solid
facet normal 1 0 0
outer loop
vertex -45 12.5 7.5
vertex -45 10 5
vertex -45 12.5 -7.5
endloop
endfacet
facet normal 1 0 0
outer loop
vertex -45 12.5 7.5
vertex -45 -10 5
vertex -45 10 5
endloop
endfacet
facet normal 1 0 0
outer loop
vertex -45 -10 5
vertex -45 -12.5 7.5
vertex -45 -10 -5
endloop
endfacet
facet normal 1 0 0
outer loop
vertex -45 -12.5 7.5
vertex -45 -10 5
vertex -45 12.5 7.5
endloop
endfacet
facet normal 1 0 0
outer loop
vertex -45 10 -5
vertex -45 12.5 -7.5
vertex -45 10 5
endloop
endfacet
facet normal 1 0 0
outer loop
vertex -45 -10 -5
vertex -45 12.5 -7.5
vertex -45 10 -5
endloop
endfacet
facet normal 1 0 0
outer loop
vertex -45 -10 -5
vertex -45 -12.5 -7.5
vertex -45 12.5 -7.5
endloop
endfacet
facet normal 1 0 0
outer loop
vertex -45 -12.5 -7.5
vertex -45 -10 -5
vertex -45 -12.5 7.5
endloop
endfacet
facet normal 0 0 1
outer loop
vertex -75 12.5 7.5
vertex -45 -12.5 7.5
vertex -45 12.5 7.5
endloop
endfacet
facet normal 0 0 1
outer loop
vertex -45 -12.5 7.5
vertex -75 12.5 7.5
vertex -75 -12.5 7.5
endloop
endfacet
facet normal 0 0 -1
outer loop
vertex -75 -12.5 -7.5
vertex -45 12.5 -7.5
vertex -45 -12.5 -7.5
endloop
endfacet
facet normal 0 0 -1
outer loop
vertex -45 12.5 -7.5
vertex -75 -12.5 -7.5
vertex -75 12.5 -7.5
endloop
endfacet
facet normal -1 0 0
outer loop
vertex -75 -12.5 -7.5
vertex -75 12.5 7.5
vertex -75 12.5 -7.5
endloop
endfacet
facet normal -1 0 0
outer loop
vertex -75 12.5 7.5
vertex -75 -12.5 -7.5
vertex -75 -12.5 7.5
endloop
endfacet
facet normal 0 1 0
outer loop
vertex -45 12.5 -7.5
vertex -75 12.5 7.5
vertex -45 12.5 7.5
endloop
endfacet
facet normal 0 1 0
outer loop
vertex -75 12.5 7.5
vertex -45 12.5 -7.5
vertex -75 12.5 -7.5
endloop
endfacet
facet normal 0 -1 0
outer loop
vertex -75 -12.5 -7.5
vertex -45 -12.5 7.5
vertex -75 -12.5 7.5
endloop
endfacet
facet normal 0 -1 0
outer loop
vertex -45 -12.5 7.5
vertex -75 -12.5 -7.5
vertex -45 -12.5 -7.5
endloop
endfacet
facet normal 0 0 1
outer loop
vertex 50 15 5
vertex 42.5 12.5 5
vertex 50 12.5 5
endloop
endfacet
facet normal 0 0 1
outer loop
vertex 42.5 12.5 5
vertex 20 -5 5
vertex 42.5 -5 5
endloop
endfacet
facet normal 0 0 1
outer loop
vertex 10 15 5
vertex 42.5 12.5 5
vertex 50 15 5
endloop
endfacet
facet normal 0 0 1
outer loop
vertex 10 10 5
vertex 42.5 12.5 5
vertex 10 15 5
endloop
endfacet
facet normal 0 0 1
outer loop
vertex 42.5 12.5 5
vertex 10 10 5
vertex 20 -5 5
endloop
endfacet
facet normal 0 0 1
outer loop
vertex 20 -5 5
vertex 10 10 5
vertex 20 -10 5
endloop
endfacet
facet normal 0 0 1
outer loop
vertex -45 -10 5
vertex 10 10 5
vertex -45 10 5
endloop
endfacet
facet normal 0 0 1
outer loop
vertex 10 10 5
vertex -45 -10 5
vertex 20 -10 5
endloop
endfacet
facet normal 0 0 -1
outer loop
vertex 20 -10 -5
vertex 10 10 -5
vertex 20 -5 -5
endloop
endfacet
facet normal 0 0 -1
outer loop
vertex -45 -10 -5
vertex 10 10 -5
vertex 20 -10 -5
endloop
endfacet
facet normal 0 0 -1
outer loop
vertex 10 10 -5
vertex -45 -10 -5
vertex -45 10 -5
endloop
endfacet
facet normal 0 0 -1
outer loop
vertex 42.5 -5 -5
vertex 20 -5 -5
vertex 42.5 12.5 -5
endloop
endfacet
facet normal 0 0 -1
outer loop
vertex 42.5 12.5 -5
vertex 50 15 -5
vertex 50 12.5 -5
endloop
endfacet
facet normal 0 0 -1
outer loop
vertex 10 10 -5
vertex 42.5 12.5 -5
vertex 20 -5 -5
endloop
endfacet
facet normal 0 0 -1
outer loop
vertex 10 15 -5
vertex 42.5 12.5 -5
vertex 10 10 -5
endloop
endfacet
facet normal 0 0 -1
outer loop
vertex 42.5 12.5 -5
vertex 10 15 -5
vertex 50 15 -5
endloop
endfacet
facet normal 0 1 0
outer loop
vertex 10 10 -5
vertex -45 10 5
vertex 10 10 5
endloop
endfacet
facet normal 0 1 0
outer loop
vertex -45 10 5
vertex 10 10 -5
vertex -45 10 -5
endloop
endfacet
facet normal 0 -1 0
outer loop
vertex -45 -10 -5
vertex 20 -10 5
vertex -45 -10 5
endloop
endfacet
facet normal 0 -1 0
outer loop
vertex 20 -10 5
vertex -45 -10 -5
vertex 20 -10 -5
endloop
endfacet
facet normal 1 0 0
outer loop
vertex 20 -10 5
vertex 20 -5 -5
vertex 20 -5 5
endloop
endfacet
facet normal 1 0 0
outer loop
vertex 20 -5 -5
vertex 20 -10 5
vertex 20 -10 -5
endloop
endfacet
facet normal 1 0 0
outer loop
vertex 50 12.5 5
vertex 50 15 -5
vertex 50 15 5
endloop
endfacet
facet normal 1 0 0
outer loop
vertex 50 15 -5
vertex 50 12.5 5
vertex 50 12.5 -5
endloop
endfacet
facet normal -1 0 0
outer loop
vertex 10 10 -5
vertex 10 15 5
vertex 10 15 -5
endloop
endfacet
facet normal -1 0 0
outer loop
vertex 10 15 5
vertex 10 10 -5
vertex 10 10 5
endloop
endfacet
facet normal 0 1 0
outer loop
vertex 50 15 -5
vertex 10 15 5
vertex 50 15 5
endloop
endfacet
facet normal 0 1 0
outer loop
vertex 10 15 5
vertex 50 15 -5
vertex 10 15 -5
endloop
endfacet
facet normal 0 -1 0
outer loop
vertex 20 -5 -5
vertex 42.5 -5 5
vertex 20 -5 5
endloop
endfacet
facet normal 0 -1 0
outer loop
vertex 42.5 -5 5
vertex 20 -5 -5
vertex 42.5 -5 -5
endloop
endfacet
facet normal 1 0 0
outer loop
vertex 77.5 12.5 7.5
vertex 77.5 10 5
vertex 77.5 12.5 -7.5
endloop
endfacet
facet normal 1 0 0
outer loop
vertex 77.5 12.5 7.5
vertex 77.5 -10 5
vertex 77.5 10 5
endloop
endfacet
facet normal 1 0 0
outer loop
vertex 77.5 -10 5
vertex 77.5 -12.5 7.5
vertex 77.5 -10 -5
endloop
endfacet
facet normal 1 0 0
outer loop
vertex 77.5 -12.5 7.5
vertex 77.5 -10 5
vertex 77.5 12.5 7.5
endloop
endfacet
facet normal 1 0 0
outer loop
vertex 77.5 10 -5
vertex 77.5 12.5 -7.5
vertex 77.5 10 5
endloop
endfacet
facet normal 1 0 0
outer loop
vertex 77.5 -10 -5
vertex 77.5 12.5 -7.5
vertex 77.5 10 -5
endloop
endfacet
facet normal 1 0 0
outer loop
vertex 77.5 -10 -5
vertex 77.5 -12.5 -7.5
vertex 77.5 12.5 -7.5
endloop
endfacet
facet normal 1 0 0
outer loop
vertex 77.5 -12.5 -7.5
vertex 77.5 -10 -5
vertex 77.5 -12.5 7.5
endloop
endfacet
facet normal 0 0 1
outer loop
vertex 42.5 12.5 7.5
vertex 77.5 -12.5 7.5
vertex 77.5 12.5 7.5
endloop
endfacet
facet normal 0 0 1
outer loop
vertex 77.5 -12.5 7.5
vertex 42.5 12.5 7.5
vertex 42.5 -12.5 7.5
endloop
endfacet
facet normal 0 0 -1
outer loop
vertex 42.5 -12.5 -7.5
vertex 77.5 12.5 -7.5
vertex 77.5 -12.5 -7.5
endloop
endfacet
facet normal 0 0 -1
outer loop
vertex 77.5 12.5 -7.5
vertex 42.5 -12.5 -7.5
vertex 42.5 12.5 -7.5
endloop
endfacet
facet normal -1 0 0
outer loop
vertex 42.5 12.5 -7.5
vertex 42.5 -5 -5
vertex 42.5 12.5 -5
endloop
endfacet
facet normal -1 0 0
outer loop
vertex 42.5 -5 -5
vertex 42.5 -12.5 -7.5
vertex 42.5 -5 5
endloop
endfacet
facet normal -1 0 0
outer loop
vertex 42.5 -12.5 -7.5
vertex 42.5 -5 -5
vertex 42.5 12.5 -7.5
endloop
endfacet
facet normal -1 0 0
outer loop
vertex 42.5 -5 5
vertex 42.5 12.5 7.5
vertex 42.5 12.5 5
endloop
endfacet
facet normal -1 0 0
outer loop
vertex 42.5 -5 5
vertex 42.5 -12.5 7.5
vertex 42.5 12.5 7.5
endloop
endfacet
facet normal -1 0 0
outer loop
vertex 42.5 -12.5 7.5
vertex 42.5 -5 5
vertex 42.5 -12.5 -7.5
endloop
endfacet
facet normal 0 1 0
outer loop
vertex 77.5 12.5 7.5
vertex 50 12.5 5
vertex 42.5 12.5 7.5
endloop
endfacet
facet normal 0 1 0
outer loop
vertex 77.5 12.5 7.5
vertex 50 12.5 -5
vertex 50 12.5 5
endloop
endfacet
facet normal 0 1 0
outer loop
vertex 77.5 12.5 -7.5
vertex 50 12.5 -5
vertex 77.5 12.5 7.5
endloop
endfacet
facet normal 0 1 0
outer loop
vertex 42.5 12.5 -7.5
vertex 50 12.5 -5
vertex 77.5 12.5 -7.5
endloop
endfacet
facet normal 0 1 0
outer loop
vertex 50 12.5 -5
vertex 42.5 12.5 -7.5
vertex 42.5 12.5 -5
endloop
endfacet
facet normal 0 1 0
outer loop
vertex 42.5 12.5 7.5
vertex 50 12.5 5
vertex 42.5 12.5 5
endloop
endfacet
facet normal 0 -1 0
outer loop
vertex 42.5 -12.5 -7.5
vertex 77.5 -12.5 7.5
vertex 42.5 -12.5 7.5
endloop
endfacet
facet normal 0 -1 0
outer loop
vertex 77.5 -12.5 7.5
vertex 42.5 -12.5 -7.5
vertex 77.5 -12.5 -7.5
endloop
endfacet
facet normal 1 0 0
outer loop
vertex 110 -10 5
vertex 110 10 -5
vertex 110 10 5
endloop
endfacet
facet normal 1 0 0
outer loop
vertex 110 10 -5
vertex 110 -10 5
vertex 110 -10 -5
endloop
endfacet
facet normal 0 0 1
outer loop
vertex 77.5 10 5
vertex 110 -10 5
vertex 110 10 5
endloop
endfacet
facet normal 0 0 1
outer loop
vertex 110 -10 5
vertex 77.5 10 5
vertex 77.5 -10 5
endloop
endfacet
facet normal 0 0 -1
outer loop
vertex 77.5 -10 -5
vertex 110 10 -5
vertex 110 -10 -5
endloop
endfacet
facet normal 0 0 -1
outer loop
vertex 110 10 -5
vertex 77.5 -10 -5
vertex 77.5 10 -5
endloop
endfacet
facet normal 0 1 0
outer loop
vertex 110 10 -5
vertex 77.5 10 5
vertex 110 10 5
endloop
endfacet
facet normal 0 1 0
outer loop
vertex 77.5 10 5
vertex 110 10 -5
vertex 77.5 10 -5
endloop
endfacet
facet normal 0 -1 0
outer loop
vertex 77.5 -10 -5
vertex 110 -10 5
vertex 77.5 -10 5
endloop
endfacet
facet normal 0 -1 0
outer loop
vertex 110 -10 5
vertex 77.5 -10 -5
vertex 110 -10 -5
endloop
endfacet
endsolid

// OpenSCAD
// Define the dimensions of the rectangular blocks
block_length_1 = 30;  // Adjusted length for Block 1
block_width_1 = 25;   // Adjusted width for Block 1
block_height_1 = 15;  // Adjusted height for Block 1

block_length_2 = 40;  // Length for Block 2 remains the same
block_width_2 = 20;   // Width for Block 2 remains the same
block_height_2 = 10;  // Height for Block 2 remains the same

block_length_3 = 40;  // Length for Block 3 remains the same
block_width_3 = 20;   // Width for Block 3 remains the same
block_height_3 = 10;  // Height for Block 3 remains the same

block_length_4 = 40;  // Length for Block 4 remains the same
block_width_4 = 20;   // Width for Block 4 remains the same
block_height_4 = 10;  // Height for Block 4 remains the same

block_length_5 = 35;  // Adjusted length for Block 5
block_width_5 = 25;   // Adjusted width for Block 5
block_height_5 = 15;  // Adjusted height for Block 5

block_length_6 = 40;  // Length for Block 6 remains the same
block_width_6 = 20;   // Width for Block 6 remains the same
block_height_6 = 10;  // Height for Block 6 remains the same

// Function to create a rectangular block
module rectangular_block(length, width, height) {
    color("white") {
        cube([length, width, height], center = true);
    }
}

// Generate six rectangular blocks with modifications
translate([-60, 0, 0]) rectangular_block(block_length_1, block_width_1, block_height_1);  // Block 1
translate([-30, 0, 0]) rotate([0, 0, 0]) rectangular_block(block_length_2, block_width_2, block_height_2);  // Block 2
translate([0, 0, 0]) rotate([0, 0, 0]) rectangular_block(block_length_3, block_width_3, block_height_3);    // Block 3
translate([30, 5, 0]) rectangular_block(block_length_4, block_width_4, block_height_4);   // Block 4
translate([60, 0, 0]) rectangular_block(block_length_5, block_width_5, block_height_5);   // Block 5
translate([90, 0, 0]) rectangular_block(block_length_6, block_width_6, block_height_6);   // Block 6
